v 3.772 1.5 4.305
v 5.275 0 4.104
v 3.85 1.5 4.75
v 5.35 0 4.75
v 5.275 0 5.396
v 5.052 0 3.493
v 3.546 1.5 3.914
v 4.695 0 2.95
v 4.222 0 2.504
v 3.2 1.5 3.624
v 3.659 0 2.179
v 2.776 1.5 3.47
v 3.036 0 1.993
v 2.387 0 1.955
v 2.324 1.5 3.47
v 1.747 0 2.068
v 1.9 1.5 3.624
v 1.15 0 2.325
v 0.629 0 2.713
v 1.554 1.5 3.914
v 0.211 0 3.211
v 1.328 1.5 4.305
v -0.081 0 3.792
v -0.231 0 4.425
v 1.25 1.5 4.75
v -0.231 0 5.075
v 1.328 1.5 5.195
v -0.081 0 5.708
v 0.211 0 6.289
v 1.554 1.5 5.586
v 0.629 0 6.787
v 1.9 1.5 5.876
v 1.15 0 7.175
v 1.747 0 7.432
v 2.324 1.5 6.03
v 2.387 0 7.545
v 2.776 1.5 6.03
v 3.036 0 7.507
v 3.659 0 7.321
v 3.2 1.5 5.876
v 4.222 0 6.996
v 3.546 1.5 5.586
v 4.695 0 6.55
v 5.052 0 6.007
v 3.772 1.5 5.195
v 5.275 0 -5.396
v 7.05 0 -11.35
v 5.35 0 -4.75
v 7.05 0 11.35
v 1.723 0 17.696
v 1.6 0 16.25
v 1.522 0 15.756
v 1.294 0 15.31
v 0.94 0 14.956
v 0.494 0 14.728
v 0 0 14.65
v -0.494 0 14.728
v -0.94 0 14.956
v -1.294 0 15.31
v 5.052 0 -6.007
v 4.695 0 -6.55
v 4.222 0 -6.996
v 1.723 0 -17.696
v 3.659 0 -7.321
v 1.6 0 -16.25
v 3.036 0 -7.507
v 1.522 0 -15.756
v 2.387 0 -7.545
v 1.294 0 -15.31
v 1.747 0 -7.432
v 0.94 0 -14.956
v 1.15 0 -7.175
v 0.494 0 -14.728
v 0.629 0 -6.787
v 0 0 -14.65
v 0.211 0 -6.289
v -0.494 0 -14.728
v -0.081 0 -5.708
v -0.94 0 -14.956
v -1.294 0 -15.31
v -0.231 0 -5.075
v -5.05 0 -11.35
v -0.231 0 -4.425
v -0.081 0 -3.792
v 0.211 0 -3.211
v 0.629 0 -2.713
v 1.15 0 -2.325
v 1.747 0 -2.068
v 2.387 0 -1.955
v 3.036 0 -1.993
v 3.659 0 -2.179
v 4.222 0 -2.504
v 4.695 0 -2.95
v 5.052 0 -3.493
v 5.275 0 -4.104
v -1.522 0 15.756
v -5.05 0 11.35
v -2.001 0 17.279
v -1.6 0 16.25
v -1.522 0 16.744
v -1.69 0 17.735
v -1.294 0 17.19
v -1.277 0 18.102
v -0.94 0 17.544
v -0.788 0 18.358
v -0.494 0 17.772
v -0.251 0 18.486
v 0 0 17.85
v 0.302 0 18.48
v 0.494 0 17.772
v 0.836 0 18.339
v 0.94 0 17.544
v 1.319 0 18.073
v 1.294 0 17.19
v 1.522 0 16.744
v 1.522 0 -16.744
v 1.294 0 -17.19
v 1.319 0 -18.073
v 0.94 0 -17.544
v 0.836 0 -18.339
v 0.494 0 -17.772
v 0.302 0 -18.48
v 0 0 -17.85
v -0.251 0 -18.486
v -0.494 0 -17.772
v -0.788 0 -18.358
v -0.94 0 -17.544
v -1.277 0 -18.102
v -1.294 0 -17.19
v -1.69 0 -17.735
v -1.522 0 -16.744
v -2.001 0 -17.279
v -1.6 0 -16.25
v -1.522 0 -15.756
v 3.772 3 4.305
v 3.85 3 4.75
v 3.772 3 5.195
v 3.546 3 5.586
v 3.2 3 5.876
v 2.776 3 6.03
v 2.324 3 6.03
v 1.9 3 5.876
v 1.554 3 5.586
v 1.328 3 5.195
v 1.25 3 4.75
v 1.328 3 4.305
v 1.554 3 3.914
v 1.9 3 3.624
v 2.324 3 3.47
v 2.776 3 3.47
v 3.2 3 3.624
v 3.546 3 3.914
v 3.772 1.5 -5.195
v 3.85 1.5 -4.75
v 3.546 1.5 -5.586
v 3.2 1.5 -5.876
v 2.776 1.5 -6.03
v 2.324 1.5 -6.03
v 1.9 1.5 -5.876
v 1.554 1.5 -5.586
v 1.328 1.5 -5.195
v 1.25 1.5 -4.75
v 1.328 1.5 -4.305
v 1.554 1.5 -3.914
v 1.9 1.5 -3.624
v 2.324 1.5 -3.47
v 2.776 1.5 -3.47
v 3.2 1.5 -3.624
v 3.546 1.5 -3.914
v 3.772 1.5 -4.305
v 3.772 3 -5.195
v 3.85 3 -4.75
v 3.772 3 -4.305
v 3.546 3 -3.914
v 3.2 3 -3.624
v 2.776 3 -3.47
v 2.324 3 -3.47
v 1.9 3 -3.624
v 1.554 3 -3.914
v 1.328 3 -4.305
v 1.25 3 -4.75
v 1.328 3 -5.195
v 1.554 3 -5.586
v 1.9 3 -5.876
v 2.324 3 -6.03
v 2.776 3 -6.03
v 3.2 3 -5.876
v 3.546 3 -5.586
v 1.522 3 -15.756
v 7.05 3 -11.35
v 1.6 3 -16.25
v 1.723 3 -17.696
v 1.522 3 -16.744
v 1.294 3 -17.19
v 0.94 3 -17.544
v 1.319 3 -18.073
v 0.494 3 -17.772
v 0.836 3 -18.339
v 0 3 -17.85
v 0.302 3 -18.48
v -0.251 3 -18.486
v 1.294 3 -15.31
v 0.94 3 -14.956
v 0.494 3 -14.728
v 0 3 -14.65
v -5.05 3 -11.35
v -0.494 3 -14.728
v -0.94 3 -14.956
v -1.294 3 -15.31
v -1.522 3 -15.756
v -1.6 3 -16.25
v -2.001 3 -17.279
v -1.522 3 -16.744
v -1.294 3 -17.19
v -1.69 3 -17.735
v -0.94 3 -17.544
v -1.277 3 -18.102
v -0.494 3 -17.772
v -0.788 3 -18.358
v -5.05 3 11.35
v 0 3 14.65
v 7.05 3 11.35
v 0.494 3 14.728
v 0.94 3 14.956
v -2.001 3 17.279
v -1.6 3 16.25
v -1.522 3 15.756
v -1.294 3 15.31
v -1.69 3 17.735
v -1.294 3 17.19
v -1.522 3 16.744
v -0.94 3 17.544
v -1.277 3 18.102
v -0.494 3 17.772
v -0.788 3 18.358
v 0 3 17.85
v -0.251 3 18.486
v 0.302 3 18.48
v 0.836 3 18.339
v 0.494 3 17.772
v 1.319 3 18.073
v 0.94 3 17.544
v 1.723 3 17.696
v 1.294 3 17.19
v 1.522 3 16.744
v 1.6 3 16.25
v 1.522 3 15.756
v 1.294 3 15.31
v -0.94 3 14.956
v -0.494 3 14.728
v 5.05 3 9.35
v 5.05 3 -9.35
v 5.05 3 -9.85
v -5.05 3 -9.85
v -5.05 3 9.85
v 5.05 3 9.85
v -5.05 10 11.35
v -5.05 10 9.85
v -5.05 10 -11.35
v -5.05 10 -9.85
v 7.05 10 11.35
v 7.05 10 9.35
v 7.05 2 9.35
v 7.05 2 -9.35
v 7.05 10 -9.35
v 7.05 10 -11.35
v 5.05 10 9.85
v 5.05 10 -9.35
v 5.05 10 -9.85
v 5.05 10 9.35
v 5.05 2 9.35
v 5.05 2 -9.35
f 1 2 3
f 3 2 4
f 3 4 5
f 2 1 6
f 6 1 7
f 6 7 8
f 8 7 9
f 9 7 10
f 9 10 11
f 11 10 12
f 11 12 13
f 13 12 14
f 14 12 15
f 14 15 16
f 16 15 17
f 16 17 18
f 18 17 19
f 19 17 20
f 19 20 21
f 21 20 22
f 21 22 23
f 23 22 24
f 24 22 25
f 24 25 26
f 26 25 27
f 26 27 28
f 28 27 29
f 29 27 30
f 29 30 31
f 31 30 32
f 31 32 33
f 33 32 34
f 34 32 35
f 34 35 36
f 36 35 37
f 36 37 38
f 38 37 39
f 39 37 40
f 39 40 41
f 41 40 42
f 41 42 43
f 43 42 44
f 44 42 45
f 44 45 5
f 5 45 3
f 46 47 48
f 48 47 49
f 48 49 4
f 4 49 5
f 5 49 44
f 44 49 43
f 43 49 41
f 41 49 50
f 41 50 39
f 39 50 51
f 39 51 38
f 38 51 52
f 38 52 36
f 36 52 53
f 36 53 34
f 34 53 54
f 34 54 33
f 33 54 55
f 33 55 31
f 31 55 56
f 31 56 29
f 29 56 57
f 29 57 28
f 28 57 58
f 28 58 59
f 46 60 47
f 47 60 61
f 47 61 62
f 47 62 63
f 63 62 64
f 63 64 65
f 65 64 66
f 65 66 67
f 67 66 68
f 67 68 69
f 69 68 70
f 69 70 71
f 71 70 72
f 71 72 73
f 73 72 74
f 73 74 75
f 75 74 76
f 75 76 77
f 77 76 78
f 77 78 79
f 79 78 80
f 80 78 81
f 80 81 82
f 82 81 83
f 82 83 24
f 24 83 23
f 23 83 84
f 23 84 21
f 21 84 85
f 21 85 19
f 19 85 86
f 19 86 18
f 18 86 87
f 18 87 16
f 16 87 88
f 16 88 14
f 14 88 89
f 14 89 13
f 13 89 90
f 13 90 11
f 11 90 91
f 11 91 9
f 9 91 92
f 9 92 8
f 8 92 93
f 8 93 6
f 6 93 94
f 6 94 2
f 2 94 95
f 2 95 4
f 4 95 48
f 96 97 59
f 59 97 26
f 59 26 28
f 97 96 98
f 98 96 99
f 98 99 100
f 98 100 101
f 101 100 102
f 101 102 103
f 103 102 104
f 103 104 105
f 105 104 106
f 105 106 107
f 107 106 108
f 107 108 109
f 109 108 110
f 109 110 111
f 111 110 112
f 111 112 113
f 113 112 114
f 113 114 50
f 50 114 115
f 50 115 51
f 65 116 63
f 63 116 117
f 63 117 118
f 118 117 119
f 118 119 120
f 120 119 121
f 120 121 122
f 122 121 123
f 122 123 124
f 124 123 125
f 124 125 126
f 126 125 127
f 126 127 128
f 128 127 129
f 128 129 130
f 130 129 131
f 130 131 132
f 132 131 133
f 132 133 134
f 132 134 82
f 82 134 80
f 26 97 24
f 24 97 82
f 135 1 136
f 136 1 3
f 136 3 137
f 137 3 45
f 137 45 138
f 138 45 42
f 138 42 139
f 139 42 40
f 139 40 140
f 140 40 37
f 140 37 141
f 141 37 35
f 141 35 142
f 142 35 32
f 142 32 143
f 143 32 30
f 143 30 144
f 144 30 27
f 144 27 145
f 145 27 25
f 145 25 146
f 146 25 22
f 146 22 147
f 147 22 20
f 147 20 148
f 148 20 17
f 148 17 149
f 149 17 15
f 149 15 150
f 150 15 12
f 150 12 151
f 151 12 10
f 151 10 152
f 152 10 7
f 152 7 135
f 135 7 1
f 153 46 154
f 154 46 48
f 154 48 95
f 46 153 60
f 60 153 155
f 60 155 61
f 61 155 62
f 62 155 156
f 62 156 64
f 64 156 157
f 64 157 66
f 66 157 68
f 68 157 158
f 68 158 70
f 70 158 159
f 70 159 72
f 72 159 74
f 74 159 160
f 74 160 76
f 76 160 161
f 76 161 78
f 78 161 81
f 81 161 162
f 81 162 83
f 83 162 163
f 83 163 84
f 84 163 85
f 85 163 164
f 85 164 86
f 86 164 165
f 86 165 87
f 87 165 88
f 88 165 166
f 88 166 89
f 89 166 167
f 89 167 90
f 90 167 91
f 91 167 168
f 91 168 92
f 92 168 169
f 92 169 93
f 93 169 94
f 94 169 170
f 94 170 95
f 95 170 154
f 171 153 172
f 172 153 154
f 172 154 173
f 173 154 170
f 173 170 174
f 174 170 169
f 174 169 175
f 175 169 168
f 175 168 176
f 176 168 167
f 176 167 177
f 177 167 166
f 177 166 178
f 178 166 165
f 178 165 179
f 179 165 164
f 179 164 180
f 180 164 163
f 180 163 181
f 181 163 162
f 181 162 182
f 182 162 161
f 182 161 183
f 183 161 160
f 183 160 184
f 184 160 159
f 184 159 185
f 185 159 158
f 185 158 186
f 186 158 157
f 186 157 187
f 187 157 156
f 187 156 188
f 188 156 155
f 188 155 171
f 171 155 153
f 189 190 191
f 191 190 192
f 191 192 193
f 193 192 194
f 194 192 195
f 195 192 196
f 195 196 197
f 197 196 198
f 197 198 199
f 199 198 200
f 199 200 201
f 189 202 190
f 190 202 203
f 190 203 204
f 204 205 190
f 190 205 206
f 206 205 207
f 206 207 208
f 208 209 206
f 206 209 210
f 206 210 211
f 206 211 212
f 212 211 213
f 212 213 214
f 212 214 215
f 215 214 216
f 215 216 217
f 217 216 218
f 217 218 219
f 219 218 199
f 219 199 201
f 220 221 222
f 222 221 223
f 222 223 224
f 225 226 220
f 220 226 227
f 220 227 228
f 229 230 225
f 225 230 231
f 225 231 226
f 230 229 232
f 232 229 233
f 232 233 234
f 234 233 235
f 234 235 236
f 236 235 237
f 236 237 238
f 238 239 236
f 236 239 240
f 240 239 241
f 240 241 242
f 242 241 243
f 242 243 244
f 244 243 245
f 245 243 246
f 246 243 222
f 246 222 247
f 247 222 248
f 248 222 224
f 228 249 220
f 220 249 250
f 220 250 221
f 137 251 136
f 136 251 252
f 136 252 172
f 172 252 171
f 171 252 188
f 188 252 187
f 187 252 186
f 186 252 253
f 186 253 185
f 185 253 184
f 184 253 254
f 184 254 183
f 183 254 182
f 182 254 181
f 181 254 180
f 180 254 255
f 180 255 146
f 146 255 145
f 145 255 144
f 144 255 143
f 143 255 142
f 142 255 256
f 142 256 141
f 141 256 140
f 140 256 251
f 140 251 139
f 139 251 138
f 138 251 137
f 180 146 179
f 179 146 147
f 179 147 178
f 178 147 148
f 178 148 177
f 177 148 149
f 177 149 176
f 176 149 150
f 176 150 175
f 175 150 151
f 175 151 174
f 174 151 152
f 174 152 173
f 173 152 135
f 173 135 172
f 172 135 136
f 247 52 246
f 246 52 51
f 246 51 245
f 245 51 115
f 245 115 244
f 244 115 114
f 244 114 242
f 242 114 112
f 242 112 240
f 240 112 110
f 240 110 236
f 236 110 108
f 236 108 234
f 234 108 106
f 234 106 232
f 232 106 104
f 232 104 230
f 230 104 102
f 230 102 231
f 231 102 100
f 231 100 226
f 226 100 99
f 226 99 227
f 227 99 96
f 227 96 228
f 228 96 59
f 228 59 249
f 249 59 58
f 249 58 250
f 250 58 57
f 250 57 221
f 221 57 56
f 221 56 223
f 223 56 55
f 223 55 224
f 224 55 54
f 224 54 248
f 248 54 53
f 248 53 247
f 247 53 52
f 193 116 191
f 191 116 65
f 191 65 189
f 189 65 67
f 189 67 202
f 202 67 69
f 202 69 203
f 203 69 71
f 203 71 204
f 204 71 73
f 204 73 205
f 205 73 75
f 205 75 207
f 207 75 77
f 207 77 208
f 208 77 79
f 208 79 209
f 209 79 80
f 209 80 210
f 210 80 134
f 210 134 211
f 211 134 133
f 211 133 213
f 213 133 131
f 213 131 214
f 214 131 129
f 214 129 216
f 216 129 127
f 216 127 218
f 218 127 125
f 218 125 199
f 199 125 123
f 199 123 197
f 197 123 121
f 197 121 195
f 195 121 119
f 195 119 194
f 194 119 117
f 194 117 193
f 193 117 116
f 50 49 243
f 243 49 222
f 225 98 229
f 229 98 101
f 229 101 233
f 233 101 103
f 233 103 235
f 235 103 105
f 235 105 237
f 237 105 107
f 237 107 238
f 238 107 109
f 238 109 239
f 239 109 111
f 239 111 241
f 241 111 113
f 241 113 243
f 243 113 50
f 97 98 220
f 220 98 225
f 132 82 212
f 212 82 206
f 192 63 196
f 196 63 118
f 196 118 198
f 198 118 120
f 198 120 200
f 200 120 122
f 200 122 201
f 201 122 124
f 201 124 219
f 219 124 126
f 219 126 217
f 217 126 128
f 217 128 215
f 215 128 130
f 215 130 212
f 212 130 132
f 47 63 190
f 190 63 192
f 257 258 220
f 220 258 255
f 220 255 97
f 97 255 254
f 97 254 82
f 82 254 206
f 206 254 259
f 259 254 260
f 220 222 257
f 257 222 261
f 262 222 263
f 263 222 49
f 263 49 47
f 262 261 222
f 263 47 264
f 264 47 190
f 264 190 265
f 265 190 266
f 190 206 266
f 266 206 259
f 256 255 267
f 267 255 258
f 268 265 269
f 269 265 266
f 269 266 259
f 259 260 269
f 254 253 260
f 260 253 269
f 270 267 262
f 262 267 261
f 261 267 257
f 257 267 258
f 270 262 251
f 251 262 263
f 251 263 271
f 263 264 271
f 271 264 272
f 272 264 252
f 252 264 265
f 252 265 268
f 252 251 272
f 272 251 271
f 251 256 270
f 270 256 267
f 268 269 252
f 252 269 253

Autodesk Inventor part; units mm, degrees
ref_plane "YZ Plane" through (0, 0, 0) normal (1, 0, 0) x (0, 1, 0)
ref_plane "XZ Plane" through (0, 0, 0) normal (0, 1, 0) x (-1, 0, 0)
ref_plane "XY Plane" through (0, 0, 0) normal (0, 0, 1) x (1, 0, 0)
sketch "Эскиз1" plane through (0, 0, 0) normal (0, 1, 0) x (-1, 0, 0)
  line L0 (5.05, 9.85) -> (-5.05, 9.85)
  line L1 (-5.05, 9.85) -> (-5.05, -9.85)
  line L2 (-5.05, -9.85) -> (5.05, -9.85)
  line L3 (5.05, -9.85) -> (5.05, 9.85)
  line L4 (5.05, 9.85) -> (-5.05, -9.85) construction
  line L5 (-5.05, 9.85) -> (5.05, -9.85) construction
  line L6 (7.05, -11.35) -> (5.05, -11.35) construction
  line L7 (-7.05, -11.35) -> (-7.05, 11.35)
  line L8 (-7.05, 11.35) -> (5.05, 11.35)
  line L9 (7.05, 11.35) -> (7.05, -11.35) construction
  line L10 (5.05, 9.85) -> (5.05, 11.35)
  line L11 (5.05, -9.85) -> (5.05, -11.35)
  line L12 (5.05, 11.35) -> (7.05, 11.35) construction
  line L13 (5.05, -11.35) -> (-7.05, -11.35)
  point P0 (0, 0)
  dimension "d0" = 10.1
  dimension "d1" = 19.7
  dimension "d2" = 1.5
  dimension "d24" = 1.5
extrude "Выдавливание1" add sketch "Эскиз1" along normal blind 10 contours L0 L1 L2 L11 L13 L7 L8 L10
sketch "Эскиз2" plane through (0, 0, 0) normal (0, -1, 0) x (1, 0, 0)
  line L0 (-5.05, 11.35) -> (7.05, 11.35) projected
  line L1 (7.05, 11.35) -> (-5.05, 11.35)
  line L2 (-5.05, 11.35) -> (-5.05, -11.35)
  line L3 (-5.05, -11.35) -> (7.05, -11.35)
  line L4 (7.05, -11.35) -> (7.05, 11.35)
  line L5 (0, 16.25) -> (0, -16.25)
  circle A0 centre (0, 16.25) radius 2.25
  circle A1 centre (0, -16.25) radius 2.25
  line L6 (1.7234, 17.6965) -> (7.05, 11.35)
  line L7 (-5.05, 11.35) -> (-2.0009, 17.279)
  line L8 (7.05, -11.35) -> (-5.05, -11.35) projected
  line L9 (7.05, -11.35) -> (1.7234, -17.6965)
  line L10 (-5.05, -11.35) -> (-2.0009, -17.279)
  circle A2 centre (0, 16.25) radius 1.6
  circle A3 centre (0, -16.25) radius 1.6
  circle A4 centre (2.55, -4.75) radius 1.3
  circle A5 centre (2.55, 4.75) radius 1.3
  line L11 (5.05, -9.85) -> (5.05, 9.85) projected
  line L12 (2.55, -4.75) -> (2.55, 4.75)
  line L13 (0, 0) -> (7.05, 0)
  line L14 (7.05, 11.35) -> (7.05, -11.35) projected
  point P0 (-5.05, 11.35)
  point P1 (2.55, 0)
  point P2 (-5.05, 11.35)
  dimension "d5" = 32.5
  dimension "d6" = 4.5
  dimension "d10" = 4.5
  dimension "d12" = 3.2
  dimension "d13" = 3.2
  dimension "d16" = 2.6
  dimension "d17" = 2.6
  dimension "d18" = 2.5
  dimension "d19" = 2.5
  dimension "d20" = 9.5
extrude "Выдавливание2" add sketch "Эскиз2" against normal blind 3
chamfer "Фаска1" distance 1.5 angle 45 2 edges at (1.25, 0, -4.75) (1.25, 0, 4.75)
sketch "Эскиз3" plane through (7.05, 10, 11.35) normal (1, 0, 0) x (0, 0, -1)
  line L0 (22.7, -7) -> (22.7, 0) projected
  line L1 (0, 0) -> (22.7, 0) projected
  line L2 (0, -7) -> (0, 0) projected
  line L3 (0, -10) -> (0, -7) projected
  line L4 (0, -10) -> (22.7, -10) projected
  line L5 (22.7, -10) -> (22.7, -7) projected
  line L6 (20.7, -2) -> (20.7, -7)
  line L7 (20.7, -7) -> (20.7, -8)
  line L8 (20.7, -8) -> (2, -8)
  line L9 (2, -8) -> (2, -7)
  line L10 (2, -7) -> (2, -2)
  line L11 (2, -2) -> (20.7, -2)
  line L12 (20.7, -2) -> (20.7, 0)
  line L13 (0, 0) -> (22.7, 0) projected
  line L14 (2, -2) -> (2, 0)
  point P0 (11.35, -10)
  dimension "d25" = 2
extrude "Выдавливание3" cut sketch "Эскиз3" against normal blind 2 contours L12 L11 L14 L1 | L6 L7 L8 L9 L10 L11
properties part number "креп_концевика"
